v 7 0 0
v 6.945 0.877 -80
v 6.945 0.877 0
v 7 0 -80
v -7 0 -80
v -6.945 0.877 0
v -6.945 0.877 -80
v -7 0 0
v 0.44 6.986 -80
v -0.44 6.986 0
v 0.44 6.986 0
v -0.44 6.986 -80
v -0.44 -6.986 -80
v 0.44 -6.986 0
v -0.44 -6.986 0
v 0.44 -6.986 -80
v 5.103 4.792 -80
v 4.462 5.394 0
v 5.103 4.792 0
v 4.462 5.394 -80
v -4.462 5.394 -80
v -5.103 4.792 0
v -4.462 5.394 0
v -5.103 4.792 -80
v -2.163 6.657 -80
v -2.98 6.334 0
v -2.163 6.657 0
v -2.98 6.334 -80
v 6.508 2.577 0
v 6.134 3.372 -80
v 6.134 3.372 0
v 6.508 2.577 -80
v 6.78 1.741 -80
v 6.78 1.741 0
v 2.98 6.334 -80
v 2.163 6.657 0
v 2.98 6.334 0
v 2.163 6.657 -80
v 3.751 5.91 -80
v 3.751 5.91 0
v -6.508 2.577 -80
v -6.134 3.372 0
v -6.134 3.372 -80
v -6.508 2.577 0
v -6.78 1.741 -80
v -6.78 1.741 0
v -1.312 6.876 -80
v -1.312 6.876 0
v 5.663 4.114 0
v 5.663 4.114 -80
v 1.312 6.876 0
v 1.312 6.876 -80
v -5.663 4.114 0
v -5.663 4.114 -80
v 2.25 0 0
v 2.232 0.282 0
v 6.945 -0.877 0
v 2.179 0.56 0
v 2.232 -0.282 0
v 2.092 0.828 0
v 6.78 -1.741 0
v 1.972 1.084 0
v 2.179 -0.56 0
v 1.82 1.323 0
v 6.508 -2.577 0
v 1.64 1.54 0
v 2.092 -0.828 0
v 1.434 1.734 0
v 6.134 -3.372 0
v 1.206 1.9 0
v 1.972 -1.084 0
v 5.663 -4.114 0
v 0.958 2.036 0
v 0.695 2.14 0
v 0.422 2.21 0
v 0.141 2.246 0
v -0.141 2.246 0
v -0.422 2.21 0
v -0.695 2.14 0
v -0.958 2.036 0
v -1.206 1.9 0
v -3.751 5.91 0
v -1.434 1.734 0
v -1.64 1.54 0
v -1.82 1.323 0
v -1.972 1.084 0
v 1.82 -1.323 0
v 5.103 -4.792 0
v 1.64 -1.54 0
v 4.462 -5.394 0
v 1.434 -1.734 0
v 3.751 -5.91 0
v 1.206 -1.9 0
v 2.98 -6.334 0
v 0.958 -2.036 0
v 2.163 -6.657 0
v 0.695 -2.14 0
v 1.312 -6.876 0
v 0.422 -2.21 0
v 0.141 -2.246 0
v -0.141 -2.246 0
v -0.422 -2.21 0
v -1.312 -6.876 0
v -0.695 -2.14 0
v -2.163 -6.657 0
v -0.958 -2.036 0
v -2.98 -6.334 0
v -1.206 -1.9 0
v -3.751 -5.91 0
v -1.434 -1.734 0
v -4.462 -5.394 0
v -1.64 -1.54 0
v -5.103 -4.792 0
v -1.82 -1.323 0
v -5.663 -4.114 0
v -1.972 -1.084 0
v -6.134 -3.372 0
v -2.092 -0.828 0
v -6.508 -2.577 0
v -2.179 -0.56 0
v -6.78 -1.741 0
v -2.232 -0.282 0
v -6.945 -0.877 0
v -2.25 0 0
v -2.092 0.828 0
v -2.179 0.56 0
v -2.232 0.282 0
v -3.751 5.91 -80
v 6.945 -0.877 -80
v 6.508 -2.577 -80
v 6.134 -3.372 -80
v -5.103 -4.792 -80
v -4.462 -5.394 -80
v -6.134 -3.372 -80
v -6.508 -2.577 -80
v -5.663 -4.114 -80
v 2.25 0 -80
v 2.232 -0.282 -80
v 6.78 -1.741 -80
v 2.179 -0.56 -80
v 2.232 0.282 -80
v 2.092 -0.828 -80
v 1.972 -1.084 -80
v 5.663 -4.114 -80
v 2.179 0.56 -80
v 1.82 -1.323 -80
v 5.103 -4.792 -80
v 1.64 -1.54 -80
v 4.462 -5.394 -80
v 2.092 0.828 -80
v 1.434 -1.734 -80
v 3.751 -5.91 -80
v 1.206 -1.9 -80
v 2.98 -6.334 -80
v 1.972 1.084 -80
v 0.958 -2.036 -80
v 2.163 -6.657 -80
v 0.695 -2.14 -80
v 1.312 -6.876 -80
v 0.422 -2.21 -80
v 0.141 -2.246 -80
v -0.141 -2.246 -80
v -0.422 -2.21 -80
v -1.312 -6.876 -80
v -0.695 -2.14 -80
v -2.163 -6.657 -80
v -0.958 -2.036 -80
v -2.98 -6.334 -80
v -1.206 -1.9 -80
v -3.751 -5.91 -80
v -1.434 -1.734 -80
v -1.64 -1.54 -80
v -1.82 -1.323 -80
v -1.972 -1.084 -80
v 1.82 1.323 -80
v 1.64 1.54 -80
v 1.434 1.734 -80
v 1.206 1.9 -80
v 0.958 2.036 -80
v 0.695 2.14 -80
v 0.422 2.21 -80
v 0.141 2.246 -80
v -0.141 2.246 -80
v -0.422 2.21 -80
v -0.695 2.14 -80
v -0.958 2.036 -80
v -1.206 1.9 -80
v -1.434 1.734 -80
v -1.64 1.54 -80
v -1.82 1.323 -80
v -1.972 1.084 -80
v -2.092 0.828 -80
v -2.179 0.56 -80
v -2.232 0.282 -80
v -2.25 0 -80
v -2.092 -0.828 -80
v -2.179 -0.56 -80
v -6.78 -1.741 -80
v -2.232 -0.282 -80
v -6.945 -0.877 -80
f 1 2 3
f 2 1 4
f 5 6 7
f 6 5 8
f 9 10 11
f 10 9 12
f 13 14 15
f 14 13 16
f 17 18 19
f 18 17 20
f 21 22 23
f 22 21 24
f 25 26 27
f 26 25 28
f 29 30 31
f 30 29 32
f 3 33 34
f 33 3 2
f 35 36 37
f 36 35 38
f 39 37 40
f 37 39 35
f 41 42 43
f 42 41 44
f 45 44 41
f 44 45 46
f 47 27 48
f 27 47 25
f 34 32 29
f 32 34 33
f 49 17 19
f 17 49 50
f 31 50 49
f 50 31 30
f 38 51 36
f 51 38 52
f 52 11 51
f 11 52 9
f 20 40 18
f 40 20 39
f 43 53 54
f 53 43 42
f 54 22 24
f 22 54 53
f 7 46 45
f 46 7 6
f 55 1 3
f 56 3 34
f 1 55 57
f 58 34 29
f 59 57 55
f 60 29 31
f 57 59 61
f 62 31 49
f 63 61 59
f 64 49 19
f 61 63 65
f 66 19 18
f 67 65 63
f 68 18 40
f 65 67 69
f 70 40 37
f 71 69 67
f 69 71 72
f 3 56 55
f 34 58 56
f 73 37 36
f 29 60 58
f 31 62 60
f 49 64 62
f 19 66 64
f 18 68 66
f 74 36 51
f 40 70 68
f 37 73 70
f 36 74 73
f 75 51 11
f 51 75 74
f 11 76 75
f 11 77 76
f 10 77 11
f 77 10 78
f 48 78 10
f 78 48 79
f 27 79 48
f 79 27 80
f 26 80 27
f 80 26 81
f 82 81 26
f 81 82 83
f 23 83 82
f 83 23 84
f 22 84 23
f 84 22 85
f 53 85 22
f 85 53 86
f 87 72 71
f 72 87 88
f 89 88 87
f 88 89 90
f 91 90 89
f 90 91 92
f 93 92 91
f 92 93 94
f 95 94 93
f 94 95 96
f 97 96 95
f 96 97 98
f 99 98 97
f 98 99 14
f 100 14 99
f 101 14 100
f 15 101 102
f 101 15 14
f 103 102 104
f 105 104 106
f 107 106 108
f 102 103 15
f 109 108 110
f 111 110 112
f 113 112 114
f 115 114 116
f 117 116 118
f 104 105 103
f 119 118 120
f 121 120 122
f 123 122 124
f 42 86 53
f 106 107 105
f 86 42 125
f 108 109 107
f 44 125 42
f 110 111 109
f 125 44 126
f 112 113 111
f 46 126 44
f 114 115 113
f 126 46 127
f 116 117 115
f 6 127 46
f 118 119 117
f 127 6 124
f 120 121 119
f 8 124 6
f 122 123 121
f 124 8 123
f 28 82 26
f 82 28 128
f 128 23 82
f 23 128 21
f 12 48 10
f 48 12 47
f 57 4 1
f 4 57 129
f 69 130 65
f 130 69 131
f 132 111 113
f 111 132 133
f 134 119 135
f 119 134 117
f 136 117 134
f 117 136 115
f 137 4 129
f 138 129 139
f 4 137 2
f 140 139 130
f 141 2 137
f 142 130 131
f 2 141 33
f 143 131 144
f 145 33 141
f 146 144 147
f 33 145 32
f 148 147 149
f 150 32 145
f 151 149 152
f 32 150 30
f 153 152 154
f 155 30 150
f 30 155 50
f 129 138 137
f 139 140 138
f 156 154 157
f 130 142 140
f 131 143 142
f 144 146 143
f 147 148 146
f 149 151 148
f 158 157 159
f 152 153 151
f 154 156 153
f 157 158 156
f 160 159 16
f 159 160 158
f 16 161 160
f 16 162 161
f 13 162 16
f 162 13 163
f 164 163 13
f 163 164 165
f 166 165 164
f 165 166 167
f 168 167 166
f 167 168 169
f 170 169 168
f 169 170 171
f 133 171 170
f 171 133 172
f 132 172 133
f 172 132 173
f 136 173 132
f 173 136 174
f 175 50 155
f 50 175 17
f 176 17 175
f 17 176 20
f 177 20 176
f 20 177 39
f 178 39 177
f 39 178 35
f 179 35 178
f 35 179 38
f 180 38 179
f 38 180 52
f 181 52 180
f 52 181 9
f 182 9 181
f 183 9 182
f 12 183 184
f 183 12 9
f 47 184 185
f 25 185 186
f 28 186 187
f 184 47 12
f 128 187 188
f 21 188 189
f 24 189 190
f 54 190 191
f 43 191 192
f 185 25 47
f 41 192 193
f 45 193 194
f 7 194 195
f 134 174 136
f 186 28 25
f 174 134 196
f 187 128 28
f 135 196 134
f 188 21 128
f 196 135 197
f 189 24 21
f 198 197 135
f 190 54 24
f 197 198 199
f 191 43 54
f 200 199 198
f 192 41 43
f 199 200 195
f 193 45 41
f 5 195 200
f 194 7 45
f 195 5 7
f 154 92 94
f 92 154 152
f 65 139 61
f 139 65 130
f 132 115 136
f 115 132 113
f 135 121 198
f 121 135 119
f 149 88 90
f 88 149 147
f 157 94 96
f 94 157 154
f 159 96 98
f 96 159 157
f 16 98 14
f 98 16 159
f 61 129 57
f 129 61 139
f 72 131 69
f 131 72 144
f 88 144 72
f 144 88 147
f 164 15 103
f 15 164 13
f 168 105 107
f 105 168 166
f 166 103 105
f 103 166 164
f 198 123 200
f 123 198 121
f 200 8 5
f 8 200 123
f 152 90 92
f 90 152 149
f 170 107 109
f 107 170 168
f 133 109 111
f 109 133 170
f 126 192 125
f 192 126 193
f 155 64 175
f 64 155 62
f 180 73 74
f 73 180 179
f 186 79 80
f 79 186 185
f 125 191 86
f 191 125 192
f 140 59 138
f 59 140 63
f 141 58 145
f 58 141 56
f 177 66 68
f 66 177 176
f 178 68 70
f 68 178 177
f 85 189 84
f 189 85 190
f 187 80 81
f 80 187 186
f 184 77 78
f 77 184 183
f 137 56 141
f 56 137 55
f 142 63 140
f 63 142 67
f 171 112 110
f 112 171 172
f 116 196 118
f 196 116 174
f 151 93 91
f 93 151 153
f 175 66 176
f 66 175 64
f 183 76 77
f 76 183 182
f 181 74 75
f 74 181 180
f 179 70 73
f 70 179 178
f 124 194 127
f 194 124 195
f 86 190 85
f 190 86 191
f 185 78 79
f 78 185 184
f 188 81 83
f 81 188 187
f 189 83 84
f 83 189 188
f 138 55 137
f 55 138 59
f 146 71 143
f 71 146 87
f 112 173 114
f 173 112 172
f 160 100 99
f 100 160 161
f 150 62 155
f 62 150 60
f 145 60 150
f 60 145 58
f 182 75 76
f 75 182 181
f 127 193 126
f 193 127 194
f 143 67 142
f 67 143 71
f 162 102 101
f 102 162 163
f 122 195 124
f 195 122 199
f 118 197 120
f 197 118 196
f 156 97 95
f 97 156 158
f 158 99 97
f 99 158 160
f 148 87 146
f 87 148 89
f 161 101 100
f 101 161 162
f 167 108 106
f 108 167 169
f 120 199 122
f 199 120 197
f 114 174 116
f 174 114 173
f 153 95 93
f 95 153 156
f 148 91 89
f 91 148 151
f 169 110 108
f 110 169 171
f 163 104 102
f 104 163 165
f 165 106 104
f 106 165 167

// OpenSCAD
$fn = 50;


difference() {
	union() {
		translate(v = [0, 0, -80.0000000000]) {
			cylinder(h = 80, r = 7.0000000000);
		}
		cylinder(h = 0, r = 16.0000000000);
	}
	union() {
		#translate(v = [0, 0, -80]) {
			cylinder(h = 80, r = 2.2500000000);
		}
	}
}
